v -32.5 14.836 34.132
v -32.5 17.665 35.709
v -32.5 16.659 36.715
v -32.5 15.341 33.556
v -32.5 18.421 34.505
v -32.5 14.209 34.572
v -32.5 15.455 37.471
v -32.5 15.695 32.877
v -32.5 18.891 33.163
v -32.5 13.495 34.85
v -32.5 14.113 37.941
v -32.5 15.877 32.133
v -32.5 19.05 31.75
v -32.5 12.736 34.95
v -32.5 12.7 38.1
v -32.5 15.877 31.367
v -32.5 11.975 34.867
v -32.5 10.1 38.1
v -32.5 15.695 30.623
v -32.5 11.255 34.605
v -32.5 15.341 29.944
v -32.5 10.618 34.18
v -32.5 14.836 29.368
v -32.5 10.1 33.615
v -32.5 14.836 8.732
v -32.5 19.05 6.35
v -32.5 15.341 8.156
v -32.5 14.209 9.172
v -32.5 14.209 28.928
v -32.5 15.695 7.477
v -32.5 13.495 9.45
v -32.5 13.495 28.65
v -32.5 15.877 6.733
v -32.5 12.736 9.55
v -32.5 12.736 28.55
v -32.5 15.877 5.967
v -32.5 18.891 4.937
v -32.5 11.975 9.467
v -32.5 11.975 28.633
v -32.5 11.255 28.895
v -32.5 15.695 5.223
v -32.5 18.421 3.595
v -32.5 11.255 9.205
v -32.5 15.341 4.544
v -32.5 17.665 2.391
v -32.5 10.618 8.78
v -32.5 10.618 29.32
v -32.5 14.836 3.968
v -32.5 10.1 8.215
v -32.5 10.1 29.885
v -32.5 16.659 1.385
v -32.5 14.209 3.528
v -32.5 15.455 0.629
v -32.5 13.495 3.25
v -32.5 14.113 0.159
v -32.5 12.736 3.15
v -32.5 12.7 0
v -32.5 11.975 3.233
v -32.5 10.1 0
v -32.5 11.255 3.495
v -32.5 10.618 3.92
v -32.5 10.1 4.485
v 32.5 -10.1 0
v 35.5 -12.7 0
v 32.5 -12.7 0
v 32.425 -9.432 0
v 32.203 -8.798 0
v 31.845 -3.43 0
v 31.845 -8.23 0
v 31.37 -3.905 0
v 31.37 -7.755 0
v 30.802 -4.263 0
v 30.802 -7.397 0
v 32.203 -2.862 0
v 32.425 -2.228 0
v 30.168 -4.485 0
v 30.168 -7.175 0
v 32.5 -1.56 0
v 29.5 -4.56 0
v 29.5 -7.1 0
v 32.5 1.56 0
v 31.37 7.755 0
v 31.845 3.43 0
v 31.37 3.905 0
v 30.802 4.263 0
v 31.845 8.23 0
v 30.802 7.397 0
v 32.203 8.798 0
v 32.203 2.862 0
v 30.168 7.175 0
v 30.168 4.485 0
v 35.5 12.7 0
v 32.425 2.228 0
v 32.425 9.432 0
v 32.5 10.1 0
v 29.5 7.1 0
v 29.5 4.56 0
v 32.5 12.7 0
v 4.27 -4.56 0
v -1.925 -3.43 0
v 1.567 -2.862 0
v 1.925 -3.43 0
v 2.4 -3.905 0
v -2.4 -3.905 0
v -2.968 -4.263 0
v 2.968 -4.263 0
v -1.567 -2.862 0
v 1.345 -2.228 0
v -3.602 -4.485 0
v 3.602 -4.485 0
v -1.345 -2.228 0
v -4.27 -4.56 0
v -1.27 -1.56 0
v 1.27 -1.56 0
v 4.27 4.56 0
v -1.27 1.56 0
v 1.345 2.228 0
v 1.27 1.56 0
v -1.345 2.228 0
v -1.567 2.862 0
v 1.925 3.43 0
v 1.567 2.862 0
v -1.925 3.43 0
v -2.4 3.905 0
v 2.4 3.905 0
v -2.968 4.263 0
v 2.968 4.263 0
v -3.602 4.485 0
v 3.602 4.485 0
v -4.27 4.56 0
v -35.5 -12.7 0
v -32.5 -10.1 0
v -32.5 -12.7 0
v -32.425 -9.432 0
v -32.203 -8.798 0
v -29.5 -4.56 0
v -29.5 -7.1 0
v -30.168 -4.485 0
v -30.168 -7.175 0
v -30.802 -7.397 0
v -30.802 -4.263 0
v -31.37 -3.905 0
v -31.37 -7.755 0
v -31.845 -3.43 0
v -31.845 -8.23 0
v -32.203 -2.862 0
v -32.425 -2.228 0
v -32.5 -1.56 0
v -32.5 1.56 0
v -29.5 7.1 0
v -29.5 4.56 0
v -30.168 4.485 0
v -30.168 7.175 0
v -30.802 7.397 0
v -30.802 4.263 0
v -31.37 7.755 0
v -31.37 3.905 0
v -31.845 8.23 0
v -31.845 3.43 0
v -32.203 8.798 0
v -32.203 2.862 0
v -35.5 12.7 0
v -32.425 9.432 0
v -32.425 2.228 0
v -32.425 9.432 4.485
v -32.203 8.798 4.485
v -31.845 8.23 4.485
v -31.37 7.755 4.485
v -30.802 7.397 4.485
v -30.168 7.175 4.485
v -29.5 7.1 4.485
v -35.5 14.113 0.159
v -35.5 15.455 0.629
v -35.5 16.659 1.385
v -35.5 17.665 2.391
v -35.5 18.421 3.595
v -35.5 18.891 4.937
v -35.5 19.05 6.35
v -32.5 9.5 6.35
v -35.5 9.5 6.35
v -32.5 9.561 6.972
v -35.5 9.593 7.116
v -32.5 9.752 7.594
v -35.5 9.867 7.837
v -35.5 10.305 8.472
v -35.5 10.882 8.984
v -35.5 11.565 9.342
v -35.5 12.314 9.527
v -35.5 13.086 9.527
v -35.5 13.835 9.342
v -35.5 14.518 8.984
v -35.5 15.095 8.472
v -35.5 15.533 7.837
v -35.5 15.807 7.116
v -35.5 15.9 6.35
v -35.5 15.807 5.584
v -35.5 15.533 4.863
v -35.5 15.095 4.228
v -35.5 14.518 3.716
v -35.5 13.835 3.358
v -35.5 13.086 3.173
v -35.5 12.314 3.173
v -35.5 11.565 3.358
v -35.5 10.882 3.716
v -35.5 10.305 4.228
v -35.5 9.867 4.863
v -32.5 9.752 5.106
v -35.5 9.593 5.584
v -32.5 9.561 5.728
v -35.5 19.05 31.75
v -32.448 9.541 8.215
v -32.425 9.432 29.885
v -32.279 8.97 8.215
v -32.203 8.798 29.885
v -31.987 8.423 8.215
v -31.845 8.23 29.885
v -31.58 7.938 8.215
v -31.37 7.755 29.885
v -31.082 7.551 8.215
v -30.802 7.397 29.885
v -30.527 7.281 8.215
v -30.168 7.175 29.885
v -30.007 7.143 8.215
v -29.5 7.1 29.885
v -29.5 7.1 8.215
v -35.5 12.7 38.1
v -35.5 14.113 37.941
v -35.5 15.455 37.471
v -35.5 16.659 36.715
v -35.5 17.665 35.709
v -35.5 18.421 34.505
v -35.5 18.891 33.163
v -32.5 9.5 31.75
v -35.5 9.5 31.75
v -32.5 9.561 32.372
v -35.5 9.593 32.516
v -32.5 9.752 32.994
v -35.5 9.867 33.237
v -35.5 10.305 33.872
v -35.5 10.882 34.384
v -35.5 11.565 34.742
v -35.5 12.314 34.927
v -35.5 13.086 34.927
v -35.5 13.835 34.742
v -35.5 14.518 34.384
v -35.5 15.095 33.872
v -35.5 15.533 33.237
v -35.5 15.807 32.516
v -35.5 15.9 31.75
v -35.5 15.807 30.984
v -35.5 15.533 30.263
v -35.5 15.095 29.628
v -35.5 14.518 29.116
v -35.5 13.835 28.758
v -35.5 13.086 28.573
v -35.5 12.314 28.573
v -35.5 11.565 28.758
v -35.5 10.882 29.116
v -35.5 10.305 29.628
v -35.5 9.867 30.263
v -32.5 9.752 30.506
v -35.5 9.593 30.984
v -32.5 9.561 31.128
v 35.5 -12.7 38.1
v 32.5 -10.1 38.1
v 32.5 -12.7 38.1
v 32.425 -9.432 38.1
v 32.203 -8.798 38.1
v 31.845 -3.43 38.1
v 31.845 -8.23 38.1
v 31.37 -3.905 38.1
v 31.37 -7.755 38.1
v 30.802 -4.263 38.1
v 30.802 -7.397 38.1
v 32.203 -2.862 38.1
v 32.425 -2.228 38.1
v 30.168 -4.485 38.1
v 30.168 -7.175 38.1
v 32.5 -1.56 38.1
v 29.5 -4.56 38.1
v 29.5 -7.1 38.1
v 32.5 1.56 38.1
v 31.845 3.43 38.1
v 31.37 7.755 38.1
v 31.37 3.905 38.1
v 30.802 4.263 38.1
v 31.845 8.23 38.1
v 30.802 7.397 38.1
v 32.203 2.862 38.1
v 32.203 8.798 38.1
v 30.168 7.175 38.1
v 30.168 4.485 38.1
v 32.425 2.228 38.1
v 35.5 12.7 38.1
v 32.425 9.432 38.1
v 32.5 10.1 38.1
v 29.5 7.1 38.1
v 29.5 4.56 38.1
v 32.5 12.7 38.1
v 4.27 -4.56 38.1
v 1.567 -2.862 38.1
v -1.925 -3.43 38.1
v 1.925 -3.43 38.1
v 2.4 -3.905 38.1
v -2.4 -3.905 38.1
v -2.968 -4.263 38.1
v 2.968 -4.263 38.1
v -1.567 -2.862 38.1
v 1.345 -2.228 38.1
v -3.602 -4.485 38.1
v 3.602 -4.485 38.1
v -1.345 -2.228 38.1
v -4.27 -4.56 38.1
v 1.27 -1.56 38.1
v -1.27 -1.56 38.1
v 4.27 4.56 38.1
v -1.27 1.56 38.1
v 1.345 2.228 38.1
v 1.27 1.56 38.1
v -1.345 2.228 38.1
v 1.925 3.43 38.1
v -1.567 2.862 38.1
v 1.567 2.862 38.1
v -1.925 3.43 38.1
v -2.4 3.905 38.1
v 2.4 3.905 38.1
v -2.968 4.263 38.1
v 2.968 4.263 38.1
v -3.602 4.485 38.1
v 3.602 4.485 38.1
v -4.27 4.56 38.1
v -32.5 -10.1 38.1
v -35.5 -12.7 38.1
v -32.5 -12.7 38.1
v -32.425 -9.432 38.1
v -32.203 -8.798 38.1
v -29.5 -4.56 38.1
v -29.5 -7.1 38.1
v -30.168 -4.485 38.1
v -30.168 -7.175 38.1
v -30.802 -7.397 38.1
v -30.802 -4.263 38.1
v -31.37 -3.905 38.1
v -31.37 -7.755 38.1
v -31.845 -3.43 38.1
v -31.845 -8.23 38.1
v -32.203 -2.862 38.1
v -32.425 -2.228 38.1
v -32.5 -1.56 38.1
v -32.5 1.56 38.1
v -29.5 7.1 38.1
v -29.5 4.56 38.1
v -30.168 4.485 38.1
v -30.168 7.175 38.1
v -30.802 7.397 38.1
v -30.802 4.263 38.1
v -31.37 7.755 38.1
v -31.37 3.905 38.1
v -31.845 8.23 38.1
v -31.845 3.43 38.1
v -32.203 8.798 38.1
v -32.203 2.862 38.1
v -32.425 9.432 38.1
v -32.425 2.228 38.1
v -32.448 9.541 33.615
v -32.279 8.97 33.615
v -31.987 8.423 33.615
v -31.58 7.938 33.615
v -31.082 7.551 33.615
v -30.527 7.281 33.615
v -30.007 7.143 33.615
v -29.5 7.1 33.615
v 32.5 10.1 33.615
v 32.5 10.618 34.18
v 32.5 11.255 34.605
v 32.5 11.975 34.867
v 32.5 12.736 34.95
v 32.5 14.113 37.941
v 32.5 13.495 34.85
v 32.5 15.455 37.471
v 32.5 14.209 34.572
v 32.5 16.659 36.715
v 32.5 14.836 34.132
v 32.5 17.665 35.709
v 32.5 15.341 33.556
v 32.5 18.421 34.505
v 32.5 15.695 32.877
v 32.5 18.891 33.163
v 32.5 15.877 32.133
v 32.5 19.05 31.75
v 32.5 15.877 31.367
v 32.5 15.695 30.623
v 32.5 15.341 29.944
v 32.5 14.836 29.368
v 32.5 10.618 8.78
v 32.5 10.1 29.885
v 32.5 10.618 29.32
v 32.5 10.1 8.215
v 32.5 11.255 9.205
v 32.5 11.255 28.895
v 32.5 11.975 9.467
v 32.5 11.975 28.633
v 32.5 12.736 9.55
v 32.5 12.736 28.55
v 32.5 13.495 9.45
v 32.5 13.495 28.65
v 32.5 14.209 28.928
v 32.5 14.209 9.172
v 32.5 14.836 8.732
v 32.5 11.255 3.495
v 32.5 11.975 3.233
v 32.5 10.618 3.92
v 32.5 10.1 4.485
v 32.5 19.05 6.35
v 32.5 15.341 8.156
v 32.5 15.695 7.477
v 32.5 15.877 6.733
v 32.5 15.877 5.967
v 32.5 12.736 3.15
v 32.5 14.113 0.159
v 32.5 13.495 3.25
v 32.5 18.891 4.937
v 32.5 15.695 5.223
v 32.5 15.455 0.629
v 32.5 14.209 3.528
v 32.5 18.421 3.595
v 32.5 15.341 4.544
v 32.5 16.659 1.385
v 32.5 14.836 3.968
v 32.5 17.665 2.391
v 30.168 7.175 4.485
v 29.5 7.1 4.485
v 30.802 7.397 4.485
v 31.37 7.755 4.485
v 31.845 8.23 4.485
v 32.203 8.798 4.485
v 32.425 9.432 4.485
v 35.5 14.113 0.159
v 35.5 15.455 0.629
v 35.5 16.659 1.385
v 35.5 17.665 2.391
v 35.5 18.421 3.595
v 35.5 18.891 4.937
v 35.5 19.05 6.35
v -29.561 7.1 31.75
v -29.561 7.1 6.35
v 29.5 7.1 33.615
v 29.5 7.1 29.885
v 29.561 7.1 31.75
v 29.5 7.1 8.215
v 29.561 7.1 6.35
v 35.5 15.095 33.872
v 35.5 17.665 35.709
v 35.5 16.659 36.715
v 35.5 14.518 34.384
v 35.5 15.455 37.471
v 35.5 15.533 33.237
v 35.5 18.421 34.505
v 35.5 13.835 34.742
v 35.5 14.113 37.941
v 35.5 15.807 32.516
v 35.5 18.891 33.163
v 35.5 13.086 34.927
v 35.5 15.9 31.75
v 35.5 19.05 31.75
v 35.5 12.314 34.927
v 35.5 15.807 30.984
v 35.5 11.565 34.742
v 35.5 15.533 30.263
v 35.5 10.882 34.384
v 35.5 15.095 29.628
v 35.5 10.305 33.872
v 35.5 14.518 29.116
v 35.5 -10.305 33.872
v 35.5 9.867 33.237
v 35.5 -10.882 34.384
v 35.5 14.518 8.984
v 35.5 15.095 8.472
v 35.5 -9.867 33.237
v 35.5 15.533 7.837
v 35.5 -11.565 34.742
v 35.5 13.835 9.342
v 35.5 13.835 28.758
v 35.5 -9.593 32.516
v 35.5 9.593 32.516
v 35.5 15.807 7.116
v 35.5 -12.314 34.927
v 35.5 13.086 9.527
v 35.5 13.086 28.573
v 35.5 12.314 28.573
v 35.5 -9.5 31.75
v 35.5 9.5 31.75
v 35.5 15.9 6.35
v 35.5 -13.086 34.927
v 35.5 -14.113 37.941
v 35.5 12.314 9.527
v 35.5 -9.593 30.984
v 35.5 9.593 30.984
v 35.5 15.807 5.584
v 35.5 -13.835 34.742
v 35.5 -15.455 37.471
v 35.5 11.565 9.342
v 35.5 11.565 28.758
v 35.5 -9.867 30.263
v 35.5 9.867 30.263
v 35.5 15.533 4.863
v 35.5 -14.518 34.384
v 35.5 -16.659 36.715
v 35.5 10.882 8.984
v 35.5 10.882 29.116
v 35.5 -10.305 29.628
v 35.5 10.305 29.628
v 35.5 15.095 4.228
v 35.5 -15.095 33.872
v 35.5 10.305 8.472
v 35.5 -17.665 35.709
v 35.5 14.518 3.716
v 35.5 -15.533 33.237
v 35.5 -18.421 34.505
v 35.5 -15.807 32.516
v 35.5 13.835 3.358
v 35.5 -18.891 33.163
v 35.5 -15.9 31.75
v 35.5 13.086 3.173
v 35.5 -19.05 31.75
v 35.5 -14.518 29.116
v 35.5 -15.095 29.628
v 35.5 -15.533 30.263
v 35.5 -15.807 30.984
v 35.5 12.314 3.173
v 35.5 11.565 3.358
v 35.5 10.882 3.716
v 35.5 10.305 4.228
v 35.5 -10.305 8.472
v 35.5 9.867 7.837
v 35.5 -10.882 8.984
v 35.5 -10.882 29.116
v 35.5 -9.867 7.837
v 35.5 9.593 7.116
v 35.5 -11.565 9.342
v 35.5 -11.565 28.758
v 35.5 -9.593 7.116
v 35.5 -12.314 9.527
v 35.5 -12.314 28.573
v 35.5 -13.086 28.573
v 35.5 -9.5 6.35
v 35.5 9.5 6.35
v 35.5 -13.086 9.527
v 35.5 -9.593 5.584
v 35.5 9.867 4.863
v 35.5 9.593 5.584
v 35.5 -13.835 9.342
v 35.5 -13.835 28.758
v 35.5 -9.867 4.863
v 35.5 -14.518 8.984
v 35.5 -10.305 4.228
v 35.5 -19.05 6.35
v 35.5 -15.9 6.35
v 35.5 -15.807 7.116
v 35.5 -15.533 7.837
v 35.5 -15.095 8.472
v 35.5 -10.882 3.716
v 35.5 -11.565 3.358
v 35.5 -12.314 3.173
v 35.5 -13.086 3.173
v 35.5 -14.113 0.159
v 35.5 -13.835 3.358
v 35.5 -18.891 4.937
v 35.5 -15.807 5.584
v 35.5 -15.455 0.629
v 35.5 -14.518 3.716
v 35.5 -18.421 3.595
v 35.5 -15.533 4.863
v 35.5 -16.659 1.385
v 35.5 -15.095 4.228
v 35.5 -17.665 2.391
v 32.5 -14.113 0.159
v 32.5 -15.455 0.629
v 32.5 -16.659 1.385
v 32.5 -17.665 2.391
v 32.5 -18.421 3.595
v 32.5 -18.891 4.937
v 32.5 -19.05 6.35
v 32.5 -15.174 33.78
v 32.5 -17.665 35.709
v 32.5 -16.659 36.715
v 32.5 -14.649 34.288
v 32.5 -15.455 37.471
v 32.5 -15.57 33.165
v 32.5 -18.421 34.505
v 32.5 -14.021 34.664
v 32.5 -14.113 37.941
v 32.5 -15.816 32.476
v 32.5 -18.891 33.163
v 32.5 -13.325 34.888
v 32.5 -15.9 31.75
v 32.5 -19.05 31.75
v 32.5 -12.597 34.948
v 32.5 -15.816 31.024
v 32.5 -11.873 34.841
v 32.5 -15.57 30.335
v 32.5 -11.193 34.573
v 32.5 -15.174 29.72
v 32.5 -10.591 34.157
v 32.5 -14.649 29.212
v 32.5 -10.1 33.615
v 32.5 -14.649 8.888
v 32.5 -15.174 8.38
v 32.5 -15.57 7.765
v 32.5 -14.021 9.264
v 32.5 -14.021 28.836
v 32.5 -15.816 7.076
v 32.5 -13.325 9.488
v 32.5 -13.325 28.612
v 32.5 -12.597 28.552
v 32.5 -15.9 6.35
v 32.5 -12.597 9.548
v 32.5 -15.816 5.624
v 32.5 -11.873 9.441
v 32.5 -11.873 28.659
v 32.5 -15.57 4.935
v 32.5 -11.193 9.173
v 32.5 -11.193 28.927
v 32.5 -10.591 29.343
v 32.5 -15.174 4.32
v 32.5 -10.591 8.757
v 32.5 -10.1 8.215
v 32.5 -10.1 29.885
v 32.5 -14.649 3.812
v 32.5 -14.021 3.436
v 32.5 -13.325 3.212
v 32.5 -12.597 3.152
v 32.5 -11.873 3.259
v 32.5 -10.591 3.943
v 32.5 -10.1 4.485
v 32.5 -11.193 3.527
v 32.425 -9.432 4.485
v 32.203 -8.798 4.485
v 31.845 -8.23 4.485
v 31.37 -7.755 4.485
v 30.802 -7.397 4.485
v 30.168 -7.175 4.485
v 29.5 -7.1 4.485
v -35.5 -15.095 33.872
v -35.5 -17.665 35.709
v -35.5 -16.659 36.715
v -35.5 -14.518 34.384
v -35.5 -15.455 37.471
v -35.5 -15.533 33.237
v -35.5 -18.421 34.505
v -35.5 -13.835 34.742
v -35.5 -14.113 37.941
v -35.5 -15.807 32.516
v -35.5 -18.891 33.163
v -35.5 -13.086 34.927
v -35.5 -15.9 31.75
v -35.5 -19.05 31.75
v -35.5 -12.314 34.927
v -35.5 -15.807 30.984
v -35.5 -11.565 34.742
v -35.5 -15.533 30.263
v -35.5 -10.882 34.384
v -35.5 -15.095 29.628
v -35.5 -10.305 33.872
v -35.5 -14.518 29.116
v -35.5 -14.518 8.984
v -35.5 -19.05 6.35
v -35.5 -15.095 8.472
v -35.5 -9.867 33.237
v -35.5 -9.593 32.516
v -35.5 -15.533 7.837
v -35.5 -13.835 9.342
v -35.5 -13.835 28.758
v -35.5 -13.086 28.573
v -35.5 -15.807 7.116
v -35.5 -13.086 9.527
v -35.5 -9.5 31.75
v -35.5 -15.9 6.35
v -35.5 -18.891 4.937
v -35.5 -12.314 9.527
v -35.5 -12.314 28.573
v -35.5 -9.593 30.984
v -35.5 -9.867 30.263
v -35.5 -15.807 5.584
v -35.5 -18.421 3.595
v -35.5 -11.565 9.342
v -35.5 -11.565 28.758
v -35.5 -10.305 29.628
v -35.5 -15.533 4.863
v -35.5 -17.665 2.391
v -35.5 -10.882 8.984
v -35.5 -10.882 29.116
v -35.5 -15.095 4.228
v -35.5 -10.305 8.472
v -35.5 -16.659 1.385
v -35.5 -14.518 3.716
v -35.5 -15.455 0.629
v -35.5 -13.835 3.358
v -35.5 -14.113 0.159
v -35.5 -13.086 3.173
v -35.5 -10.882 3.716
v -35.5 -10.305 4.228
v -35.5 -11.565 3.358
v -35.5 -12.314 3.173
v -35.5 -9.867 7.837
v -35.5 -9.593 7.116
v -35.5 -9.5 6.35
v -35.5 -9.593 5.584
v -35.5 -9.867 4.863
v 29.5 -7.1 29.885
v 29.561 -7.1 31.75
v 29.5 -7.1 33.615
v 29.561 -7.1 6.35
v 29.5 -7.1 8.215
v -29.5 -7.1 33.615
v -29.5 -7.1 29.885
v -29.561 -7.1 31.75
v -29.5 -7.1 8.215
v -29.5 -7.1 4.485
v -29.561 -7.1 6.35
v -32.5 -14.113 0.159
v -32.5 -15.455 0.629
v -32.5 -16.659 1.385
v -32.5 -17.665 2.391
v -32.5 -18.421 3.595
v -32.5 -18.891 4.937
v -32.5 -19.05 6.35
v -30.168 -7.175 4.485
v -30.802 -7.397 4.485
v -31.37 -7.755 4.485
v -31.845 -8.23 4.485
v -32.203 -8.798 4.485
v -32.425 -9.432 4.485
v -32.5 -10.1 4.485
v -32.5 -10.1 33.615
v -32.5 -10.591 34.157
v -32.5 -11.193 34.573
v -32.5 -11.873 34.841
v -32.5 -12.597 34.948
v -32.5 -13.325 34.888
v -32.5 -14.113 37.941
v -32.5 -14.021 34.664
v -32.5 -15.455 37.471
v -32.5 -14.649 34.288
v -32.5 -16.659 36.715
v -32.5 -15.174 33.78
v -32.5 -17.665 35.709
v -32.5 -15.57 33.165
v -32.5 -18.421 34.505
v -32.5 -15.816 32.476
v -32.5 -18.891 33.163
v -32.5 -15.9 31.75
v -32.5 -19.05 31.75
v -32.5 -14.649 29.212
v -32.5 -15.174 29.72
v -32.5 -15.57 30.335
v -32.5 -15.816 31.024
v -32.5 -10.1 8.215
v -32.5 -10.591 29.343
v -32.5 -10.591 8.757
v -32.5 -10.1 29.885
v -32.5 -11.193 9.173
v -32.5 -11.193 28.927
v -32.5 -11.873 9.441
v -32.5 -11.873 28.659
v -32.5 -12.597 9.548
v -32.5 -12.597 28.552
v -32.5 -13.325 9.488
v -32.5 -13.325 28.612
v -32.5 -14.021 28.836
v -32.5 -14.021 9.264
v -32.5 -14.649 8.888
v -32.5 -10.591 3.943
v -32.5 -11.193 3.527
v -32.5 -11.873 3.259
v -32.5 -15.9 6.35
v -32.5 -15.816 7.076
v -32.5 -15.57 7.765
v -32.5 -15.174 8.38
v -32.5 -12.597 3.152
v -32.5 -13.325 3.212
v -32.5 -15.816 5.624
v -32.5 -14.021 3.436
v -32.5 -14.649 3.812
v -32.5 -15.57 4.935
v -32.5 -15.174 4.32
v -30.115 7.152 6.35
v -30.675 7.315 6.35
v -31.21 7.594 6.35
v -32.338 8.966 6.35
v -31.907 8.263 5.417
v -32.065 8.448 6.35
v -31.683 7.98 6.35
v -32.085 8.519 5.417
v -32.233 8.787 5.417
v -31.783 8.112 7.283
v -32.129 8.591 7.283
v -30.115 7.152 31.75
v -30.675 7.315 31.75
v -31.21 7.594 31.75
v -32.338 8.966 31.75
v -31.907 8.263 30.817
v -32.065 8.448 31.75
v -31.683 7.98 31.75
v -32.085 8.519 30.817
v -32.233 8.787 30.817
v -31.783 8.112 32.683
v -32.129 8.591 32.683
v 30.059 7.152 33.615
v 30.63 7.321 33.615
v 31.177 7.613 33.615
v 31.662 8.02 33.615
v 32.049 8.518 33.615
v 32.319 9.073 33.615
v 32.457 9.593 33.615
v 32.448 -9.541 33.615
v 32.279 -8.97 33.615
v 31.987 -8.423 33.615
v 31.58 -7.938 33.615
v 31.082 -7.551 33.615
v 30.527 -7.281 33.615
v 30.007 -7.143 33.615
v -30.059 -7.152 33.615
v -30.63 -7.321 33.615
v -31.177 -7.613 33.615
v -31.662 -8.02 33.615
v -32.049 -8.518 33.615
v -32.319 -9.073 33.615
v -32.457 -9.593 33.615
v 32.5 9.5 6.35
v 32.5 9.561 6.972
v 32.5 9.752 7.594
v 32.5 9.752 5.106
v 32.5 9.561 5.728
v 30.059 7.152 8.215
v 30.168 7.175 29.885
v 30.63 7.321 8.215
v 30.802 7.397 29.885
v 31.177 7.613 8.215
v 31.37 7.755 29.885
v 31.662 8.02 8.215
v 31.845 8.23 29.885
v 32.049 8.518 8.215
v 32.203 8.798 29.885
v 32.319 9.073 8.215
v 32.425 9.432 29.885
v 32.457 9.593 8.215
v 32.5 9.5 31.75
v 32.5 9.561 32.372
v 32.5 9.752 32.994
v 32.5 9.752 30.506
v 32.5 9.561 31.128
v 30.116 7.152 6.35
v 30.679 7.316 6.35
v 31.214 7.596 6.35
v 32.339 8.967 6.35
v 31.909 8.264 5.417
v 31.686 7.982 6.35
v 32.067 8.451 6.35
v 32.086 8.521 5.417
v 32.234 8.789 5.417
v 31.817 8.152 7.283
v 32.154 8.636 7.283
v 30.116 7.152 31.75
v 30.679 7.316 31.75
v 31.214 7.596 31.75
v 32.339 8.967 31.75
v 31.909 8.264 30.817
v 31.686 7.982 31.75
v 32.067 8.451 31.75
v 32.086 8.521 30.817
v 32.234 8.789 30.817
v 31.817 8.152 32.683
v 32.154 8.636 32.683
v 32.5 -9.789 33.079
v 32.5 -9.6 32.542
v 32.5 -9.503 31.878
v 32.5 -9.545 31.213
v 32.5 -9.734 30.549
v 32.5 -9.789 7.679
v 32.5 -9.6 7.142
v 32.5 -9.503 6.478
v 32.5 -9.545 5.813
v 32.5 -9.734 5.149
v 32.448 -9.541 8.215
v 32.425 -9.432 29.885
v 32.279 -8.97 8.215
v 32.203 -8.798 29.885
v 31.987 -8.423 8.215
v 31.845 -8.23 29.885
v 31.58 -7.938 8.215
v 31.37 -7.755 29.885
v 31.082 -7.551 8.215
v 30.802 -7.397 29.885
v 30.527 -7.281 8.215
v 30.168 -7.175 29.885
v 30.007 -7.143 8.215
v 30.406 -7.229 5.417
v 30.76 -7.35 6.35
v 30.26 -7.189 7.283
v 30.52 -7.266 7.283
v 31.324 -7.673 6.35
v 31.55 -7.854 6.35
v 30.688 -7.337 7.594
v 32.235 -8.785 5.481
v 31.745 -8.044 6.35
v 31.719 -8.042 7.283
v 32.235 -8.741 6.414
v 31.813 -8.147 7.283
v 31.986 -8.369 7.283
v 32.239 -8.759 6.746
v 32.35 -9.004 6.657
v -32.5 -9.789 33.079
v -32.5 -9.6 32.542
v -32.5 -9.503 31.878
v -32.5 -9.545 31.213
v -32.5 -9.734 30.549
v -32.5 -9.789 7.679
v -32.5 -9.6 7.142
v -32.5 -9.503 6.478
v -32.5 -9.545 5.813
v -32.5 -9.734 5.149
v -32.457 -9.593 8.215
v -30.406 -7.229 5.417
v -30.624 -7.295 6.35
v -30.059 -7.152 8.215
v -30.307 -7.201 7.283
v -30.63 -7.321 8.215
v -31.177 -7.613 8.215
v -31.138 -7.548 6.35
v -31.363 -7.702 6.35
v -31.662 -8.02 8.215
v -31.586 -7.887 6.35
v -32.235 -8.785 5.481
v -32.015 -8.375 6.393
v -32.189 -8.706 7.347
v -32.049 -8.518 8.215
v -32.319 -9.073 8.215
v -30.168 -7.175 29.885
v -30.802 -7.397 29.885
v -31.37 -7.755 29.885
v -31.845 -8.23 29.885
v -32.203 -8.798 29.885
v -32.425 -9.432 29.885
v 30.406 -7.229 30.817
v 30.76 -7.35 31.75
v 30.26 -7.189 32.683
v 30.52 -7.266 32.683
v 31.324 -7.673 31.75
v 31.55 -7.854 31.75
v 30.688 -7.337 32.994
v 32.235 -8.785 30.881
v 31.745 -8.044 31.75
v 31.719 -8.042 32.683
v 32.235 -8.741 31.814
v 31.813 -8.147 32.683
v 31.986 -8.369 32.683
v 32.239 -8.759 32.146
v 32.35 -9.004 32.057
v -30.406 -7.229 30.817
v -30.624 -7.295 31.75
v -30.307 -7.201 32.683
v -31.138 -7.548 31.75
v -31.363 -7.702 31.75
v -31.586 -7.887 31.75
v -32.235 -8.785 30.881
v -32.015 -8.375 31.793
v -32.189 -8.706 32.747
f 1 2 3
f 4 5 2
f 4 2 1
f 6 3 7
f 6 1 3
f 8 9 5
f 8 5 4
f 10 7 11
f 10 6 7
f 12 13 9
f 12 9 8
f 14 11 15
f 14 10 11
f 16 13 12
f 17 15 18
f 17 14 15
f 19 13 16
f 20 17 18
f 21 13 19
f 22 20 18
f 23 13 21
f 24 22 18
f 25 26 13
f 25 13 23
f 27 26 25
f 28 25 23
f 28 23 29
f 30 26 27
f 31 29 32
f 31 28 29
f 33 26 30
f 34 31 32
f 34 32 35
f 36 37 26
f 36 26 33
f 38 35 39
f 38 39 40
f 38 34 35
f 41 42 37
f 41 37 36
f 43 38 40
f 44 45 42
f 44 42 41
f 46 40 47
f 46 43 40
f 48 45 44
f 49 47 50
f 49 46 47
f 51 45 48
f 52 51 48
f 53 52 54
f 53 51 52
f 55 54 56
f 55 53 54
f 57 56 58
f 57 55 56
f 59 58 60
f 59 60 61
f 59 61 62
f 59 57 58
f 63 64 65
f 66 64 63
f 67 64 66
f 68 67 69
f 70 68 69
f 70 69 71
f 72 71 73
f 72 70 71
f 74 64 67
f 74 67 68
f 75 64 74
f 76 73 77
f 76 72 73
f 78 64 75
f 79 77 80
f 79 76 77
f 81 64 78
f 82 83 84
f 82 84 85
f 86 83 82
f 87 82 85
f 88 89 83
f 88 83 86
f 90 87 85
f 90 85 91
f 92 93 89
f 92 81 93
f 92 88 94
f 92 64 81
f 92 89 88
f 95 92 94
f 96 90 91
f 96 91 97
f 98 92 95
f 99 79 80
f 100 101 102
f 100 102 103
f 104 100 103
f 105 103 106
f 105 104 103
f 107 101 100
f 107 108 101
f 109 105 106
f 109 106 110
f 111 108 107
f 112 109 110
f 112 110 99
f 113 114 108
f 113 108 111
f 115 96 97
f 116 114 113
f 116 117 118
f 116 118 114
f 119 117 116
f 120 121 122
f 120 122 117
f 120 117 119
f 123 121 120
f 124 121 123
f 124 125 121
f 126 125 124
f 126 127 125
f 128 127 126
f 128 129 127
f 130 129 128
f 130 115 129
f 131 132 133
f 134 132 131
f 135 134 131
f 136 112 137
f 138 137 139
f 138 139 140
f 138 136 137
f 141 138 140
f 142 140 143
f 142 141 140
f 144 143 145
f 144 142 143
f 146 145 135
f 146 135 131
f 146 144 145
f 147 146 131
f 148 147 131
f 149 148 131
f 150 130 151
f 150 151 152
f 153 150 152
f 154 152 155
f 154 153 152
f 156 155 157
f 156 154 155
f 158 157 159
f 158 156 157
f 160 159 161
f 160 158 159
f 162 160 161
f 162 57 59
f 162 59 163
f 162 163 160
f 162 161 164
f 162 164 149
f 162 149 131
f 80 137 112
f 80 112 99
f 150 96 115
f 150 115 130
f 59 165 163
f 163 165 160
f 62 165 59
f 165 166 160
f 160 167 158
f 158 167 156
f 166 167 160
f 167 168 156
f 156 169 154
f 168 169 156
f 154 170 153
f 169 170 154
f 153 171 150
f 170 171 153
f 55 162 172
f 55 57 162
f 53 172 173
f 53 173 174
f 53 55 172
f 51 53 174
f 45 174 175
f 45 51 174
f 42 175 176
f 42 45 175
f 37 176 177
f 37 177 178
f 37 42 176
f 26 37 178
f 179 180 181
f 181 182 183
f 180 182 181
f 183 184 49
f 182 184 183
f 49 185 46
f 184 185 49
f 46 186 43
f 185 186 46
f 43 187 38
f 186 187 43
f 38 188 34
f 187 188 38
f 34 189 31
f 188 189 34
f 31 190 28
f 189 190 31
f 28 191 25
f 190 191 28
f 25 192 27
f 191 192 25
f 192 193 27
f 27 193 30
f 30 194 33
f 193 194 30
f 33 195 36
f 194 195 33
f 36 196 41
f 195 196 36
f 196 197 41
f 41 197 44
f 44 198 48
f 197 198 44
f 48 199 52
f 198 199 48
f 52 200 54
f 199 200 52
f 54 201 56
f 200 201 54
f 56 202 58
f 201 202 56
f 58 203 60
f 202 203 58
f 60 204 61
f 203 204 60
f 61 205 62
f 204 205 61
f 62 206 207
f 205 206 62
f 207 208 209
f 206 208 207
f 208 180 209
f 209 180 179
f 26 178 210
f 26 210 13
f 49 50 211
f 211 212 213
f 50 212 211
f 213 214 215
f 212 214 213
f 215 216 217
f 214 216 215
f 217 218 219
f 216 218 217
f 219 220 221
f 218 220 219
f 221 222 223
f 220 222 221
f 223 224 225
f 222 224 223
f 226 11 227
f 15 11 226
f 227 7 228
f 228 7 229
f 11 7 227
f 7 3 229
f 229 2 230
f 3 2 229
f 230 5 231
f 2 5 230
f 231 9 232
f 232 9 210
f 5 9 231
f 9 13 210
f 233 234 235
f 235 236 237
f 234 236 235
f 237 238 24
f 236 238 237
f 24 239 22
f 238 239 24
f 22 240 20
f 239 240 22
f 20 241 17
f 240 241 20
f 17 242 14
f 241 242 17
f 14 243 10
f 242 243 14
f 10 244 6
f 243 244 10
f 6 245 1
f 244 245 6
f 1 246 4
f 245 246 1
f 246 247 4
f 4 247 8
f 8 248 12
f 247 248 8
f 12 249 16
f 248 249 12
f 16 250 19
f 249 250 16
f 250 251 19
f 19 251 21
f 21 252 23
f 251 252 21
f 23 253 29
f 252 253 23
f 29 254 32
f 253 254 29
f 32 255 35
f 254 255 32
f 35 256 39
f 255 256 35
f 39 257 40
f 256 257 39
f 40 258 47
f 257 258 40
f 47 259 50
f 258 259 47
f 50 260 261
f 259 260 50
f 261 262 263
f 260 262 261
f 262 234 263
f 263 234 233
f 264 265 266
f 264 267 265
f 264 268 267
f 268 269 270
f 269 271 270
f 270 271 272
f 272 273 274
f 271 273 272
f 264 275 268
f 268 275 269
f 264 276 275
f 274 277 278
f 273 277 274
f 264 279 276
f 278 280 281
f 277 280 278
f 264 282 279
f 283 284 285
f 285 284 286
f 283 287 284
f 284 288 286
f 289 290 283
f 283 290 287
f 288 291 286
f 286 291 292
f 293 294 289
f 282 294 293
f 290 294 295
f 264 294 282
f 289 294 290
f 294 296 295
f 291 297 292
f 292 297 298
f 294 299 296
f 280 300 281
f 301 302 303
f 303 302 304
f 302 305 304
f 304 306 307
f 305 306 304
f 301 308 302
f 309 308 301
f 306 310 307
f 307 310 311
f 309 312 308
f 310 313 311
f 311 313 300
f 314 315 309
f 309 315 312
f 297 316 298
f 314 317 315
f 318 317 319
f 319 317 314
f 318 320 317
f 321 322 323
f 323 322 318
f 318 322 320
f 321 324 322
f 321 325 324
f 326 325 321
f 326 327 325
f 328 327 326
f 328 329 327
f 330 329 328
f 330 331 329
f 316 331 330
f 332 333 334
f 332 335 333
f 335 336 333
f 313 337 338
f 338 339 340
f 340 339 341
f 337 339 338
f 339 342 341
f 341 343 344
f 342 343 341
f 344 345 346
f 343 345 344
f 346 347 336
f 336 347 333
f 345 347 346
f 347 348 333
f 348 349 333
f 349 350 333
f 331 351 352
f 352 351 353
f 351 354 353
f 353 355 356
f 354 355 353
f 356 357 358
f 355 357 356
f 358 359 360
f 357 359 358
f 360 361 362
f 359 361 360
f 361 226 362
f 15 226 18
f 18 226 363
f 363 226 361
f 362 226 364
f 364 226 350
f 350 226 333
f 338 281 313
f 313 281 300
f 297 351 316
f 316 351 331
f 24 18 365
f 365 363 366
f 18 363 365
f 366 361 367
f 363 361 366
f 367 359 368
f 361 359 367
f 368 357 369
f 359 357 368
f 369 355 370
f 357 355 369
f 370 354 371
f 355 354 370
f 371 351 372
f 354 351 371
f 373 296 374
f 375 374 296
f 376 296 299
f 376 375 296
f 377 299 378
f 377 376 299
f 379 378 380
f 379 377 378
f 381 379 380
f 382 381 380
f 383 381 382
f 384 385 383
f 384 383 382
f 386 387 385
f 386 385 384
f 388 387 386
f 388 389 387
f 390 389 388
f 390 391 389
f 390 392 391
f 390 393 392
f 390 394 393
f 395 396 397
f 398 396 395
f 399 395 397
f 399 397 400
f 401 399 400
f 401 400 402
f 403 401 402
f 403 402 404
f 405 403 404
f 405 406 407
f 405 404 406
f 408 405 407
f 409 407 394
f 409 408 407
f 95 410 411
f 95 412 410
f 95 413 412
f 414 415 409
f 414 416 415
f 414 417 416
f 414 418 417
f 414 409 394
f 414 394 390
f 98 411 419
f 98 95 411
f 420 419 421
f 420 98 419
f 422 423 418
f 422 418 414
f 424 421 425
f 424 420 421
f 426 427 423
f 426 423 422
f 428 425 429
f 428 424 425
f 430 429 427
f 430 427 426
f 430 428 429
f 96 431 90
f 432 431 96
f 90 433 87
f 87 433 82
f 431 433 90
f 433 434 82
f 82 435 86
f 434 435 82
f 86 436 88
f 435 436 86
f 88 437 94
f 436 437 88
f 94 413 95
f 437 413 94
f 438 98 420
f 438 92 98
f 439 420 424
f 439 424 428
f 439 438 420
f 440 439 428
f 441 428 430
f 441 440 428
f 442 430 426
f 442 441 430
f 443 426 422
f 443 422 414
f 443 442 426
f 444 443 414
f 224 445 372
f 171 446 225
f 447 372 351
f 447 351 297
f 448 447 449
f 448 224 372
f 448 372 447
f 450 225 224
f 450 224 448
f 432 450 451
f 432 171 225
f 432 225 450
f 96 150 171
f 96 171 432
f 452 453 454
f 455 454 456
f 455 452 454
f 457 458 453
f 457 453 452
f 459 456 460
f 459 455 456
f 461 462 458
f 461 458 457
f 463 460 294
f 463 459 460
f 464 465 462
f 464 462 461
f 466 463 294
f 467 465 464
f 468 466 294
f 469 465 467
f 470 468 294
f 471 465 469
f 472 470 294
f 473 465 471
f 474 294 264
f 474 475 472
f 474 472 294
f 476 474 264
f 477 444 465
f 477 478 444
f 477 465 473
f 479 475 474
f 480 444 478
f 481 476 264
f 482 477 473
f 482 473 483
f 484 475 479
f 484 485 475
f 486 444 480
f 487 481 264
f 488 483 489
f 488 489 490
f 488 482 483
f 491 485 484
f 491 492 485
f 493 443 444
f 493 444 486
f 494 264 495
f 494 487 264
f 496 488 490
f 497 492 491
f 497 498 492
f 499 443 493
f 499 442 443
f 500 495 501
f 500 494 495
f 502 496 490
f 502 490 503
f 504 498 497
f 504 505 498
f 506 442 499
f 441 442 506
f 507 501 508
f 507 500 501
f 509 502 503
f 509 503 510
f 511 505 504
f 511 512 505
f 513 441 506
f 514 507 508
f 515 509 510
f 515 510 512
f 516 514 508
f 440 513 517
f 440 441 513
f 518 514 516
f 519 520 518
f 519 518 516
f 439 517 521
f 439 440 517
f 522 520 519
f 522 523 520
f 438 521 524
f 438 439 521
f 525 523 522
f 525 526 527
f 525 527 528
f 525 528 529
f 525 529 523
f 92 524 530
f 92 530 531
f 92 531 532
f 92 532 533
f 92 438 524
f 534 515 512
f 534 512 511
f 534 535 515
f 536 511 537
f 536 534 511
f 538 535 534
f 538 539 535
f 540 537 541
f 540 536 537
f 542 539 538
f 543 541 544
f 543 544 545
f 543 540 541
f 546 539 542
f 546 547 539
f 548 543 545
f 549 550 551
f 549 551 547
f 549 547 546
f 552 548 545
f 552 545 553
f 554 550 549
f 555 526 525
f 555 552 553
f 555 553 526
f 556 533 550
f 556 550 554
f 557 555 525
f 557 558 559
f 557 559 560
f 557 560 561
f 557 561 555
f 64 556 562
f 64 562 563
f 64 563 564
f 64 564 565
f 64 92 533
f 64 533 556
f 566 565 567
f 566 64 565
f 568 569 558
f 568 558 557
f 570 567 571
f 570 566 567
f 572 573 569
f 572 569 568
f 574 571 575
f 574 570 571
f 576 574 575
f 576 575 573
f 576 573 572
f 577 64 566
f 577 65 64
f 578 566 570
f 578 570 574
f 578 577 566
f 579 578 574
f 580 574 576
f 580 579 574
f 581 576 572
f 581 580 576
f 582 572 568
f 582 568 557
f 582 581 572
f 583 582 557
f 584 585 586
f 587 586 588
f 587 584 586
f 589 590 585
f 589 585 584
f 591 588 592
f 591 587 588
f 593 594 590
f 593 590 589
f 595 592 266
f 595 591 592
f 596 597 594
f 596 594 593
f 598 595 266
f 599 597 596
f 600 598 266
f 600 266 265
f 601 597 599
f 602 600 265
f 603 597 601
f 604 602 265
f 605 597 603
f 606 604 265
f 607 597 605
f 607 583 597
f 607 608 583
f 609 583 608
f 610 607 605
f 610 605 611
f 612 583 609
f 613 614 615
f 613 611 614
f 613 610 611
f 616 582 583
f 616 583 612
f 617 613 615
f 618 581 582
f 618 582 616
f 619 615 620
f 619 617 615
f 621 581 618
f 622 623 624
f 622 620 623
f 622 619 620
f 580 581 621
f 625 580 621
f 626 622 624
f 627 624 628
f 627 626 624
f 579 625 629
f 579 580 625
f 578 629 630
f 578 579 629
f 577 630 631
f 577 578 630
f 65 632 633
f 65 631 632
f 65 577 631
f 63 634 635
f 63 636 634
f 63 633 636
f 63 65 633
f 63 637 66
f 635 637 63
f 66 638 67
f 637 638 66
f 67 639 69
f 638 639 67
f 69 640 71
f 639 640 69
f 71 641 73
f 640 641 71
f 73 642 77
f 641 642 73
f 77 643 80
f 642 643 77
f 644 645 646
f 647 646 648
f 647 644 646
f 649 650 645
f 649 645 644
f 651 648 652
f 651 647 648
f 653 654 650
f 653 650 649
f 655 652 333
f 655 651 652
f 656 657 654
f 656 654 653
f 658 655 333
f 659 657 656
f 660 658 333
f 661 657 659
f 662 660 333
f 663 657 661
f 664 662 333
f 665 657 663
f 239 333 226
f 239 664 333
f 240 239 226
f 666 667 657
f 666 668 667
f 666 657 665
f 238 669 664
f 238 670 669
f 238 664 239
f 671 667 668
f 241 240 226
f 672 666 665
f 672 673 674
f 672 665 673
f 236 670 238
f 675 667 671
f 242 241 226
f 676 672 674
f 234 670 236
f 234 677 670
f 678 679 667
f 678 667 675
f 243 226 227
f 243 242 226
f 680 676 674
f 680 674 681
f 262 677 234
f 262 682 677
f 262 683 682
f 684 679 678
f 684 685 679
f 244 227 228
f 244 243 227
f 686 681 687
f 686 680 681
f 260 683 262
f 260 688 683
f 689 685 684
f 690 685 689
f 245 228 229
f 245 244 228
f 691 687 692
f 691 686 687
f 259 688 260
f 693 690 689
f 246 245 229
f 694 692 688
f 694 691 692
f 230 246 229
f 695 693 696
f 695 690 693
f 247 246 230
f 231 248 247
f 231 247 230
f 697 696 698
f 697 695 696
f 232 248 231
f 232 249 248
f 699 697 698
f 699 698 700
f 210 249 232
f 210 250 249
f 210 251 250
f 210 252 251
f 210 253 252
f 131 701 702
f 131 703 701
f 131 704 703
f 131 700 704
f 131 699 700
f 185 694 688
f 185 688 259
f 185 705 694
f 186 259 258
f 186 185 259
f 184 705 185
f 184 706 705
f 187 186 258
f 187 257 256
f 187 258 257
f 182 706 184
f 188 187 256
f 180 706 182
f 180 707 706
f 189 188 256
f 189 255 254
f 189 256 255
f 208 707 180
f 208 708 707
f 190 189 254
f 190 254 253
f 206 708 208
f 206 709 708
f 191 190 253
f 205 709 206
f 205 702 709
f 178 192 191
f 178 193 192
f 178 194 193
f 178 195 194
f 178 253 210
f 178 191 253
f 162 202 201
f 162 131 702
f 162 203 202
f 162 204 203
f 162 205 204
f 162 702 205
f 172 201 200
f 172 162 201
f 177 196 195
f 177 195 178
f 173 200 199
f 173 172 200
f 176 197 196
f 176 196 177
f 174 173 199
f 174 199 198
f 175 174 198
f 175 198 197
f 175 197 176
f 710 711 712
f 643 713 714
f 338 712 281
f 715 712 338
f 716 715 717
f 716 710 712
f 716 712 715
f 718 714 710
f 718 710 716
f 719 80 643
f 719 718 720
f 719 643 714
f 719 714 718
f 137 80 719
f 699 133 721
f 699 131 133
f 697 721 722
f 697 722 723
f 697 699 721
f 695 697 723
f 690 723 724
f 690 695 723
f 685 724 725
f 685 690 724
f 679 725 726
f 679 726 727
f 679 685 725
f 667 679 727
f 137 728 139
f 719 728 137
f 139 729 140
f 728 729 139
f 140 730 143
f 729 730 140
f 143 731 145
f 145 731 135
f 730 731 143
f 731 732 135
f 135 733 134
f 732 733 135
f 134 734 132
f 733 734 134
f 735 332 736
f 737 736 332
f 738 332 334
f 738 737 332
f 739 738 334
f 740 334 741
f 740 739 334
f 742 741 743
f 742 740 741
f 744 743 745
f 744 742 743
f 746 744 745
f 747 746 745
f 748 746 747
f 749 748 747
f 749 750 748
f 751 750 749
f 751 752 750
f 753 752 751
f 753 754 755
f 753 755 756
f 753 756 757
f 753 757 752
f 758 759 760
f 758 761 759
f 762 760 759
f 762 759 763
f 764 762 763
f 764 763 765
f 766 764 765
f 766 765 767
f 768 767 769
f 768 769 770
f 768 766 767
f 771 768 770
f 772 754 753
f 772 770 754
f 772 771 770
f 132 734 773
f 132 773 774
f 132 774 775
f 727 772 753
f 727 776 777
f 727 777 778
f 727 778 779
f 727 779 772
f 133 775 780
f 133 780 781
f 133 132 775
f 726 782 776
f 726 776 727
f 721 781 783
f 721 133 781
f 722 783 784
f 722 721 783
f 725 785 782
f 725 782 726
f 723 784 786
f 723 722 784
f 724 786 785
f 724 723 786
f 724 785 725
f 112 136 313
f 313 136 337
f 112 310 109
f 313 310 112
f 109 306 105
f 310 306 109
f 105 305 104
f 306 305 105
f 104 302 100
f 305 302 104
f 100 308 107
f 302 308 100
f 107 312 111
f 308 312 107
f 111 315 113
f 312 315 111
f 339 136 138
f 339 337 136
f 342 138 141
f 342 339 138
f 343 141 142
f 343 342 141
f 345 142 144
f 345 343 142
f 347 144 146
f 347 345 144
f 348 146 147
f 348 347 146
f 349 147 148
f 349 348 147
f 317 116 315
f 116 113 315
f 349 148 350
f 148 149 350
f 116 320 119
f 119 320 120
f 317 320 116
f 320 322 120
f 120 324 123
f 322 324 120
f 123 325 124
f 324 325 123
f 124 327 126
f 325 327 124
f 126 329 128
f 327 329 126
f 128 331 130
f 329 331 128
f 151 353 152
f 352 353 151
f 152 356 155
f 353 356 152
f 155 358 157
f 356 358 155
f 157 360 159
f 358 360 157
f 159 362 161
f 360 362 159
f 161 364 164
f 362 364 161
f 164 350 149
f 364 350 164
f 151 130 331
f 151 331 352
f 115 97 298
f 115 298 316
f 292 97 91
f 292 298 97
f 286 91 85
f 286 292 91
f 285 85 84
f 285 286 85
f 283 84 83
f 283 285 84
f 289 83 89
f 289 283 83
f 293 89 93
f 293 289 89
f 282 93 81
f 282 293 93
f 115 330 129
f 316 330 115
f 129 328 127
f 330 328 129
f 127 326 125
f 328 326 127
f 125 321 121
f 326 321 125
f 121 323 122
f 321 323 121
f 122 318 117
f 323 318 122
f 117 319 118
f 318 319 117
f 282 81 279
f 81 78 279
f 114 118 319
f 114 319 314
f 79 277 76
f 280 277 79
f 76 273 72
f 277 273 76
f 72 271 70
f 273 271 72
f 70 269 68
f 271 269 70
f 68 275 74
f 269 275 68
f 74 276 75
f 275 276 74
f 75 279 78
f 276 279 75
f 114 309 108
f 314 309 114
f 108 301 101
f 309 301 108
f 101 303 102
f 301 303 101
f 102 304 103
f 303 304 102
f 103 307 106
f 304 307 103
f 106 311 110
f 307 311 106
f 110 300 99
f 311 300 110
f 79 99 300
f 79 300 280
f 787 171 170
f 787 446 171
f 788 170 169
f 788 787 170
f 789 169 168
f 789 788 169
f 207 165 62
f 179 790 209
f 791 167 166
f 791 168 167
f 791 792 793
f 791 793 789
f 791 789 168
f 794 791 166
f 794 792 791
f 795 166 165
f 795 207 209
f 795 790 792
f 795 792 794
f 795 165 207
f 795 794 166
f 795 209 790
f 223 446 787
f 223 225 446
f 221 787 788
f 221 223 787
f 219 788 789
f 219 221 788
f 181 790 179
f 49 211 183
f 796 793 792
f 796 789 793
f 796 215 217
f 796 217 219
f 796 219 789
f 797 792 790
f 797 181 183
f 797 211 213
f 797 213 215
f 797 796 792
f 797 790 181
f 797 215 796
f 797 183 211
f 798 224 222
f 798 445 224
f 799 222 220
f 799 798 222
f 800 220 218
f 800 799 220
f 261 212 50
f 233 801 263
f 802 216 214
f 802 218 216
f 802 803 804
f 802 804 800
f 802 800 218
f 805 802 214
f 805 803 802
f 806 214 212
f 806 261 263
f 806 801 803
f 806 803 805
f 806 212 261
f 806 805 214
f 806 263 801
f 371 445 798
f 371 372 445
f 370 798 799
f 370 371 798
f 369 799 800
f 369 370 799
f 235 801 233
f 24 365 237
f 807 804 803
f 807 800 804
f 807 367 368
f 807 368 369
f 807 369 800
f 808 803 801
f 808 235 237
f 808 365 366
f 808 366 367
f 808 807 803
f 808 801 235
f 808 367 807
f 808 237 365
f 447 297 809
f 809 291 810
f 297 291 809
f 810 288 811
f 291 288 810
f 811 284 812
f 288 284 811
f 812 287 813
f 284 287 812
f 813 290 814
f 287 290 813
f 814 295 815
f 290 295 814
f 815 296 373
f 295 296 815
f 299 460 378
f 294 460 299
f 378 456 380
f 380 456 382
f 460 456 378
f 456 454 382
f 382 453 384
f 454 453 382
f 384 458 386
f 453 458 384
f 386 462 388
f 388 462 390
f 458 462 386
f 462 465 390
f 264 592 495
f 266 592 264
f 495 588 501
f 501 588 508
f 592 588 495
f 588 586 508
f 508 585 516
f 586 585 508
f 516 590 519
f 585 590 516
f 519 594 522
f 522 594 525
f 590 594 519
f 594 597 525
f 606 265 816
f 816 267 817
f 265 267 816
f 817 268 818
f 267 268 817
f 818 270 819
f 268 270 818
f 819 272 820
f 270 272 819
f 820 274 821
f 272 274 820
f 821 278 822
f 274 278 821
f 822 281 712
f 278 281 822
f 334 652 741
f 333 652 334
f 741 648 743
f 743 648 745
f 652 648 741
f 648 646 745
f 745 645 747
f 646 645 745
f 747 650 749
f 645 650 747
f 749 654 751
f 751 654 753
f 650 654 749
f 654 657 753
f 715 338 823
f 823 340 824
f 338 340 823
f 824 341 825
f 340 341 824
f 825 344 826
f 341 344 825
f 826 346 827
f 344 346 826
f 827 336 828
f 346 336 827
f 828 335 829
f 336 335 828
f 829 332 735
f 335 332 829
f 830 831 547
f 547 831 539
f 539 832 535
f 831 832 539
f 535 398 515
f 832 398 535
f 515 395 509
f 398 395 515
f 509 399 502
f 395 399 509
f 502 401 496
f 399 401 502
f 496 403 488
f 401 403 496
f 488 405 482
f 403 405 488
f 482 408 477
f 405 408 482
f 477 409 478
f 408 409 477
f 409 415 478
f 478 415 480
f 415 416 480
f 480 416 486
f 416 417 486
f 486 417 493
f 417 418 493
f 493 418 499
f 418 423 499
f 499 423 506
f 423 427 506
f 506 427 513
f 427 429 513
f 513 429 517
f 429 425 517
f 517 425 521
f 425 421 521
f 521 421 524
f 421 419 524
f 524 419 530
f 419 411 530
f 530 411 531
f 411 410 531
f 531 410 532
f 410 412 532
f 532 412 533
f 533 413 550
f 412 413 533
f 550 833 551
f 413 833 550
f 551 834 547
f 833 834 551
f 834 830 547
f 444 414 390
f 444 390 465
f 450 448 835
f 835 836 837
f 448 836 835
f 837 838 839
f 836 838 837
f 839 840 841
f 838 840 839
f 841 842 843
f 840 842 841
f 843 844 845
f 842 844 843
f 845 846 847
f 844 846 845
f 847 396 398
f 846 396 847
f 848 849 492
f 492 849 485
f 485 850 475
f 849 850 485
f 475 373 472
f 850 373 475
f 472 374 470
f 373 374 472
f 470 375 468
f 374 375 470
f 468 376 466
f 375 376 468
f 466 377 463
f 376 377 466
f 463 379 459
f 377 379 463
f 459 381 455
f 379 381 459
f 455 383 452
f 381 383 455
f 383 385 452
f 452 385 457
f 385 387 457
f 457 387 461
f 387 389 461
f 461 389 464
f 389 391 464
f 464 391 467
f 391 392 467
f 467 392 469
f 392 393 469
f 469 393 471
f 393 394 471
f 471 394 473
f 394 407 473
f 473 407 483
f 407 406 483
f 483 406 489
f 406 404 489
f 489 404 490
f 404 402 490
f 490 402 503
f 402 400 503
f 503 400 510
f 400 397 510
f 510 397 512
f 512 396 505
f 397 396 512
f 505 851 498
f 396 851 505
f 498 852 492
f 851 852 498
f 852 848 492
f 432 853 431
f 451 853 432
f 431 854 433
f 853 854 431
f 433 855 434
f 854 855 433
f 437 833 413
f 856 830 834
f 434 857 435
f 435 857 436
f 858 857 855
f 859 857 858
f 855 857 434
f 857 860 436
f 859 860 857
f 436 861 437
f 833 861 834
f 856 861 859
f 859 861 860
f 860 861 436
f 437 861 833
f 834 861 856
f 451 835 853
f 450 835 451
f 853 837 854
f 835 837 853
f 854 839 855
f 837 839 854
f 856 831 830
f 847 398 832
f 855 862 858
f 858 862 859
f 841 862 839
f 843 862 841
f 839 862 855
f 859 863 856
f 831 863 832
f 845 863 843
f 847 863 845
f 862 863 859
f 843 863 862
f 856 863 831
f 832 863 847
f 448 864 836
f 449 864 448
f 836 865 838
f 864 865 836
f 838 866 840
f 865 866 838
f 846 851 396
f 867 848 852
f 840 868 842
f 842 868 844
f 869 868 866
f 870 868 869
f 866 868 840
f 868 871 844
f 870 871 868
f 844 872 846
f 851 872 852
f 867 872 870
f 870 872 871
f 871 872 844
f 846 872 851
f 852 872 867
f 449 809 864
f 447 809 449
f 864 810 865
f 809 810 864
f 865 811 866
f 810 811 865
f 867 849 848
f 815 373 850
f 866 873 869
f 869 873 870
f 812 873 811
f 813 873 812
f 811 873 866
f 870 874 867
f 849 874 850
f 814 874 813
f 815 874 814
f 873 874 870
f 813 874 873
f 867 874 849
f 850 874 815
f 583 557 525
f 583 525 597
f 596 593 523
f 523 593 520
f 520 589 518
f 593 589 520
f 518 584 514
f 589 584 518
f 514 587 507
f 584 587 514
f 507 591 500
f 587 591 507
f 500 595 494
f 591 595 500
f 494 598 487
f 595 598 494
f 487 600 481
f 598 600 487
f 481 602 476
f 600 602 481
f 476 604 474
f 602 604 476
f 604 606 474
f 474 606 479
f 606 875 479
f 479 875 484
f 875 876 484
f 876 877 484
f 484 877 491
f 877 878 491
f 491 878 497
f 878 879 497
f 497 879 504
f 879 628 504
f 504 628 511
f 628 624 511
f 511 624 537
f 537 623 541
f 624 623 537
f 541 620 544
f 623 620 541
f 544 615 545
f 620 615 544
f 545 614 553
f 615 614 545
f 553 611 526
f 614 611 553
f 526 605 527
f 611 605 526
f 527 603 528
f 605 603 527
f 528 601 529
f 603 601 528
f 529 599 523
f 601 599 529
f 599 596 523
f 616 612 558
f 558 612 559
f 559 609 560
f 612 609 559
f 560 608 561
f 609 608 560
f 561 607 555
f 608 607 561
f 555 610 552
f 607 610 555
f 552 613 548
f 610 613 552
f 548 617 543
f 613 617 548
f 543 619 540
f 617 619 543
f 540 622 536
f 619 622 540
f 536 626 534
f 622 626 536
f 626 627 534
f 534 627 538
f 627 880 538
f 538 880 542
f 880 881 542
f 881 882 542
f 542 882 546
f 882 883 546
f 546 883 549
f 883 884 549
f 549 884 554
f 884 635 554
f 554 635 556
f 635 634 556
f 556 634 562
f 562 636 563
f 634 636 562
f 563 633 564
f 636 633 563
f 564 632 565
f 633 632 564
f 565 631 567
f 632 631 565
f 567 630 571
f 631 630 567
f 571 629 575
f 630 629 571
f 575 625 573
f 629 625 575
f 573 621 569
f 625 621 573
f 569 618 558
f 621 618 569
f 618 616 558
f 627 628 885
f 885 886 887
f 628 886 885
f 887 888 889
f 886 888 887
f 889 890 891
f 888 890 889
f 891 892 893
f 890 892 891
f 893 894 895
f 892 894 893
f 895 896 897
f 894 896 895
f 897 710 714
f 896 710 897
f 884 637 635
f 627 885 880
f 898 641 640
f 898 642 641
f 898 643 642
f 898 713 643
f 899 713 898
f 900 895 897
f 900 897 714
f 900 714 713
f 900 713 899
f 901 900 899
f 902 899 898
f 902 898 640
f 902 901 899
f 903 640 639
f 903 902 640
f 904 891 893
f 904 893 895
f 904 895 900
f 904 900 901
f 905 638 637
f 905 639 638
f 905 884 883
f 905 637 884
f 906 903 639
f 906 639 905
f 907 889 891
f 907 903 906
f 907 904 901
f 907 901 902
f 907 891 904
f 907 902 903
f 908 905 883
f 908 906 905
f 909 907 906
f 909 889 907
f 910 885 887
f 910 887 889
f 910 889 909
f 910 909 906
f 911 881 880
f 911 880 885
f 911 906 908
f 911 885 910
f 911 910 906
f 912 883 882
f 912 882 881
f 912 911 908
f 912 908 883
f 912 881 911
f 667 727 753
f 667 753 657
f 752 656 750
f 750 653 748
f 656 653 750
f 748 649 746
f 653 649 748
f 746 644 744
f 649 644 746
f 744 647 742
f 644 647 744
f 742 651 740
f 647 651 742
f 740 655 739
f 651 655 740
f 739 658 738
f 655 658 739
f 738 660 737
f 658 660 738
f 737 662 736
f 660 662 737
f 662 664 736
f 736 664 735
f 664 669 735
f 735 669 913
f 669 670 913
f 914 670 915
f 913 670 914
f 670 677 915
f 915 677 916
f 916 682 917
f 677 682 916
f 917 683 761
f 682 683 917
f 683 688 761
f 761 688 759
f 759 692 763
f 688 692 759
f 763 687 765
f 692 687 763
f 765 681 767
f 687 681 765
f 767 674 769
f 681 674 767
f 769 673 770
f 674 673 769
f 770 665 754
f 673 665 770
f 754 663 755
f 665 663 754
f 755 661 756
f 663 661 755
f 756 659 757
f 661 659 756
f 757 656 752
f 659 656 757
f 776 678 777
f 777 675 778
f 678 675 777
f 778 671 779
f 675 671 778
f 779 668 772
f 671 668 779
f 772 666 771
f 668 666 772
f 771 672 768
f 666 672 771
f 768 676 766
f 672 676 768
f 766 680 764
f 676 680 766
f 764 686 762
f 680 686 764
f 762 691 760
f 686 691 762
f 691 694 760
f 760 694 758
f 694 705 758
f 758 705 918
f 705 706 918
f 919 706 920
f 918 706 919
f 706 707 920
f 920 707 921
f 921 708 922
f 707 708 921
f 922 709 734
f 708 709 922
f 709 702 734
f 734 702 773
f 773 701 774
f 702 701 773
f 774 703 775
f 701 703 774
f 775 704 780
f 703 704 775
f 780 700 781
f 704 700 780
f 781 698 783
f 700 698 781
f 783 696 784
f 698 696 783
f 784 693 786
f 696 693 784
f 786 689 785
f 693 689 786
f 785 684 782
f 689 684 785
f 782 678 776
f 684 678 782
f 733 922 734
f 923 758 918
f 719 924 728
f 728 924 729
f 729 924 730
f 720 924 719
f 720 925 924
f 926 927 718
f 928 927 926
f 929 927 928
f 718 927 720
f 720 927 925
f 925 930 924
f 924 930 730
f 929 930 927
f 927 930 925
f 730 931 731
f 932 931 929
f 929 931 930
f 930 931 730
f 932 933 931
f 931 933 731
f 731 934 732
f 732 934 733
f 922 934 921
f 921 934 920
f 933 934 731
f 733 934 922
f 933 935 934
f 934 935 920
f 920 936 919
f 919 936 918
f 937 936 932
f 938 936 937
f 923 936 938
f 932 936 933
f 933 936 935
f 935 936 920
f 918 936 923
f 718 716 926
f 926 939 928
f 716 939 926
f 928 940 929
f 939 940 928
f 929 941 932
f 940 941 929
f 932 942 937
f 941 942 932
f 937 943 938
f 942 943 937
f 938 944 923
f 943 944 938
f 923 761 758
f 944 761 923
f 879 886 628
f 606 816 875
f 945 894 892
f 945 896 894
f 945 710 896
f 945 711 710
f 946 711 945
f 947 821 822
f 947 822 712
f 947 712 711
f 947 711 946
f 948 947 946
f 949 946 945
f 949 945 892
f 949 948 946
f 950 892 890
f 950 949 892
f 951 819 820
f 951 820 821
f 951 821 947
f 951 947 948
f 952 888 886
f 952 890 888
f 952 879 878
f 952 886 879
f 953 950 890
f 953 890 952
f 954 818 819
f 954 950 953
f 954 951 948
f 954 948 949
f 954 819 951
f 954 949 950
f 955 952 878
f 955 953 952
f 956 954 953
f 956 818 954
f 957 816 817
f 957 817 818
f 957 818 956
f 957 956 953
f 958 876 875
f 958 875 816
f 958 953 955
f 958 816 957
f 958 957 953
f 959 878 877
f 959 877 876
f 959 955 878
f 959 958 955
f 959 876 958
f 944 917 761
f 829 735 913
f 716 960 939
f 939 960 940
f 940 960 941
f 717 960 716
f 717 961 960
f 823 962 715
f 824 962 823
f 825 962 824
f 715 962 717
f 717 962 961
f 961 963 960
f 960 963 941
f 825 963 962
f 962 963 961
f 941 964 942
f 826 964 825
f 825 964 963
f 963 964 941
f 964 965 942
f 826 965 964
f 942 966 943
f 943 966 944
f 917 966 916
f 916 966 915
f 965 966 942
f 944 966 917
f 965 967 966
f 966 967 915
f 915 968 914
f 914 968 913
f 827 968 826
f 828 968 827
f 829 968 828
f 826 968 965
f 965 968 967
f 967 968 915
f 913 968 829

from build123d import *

# Parameters (mm, degrees)
SKETCH_W     = 31.23
SKETCH_H     = 9.12
PAD_DEPTH    = 38.1
SKETCH001_R  = 3.2
POCKET_DEPTH = 71
FILLET_R     = 6.35
FILLET001_R  = 3


with BuildPart() as part:
    # Sketch → Pad (new body)
    with BuildSketch(Plane.XY):
        Polygon((-32.5, 7.1), (32.5, 7.1), (32.5, 19.05), (35.5, 19.05), (35.5, -19.05), (32.5, -19.05), (32.5, -7.1), (-32.5, -7.1), (-32.5, -19.05), (-35.5, -19.05), (-35.5, 19.05), (-32.5, 19.05), align=None)
        with Locations((16.885, 0)):
            Rectangle(SKETCH_W, SKETCH_H, mode=Mode.SUBTRACT)
        with Locations((-16.885, 0)):
            Rectangle(SKETCH_W, SKETCH_H, mode=Mode.SUBTRACT)
    extrude(amount=PAD_DEPTH)

    # Sketch001 (on Face10 of Pad) → Pocket (cut)
    with BuildSketch(Plane(origin=(-35.5, 0, 0), x_dir=(0, -1, 0), z_dir=(-1, 0, 0))):
        with Locations((12.7, 31.75)):
            Circle(SKETCH001_R)
        with Locations((12.7, 6.35)):
            Circle(SKETCH001_R)
        with Locations((-12.7, 6.35)):
            Circle(SKETCH001_R)
        with Locations((-12.7, 31.75)):
            Circle(SKETCH001_R)
    extrude(amount=-POCKET_DEPTH, mode=Mode.SUBTRACT)

    # Fillet
    fillet_edges = [part.edges().sort_by_distance(p)[0] for p in [
        (-34, 19.05, 0),
        (-34, -19.05, 0),
        (34, -19.05, 38.1),
        (34, 19.05, 0),
        (34, -19.05, 0),
        (34, 19.05, 38.1),
        (-34, 19.05, 38.1),
        (-34, -19.05, 38.1),
    ]]
    fillet(fillet_edges, radius=FILLET_R)

    # Fillet001
    fillet001_edges = [part.edges().sort_by_distance(p)[0] for p in [
        (-1.27, -4.56, 19.05),
        (-1.27, 4.56, 19.05),
        (32.5, 4.56, 19.05),
        (32.5, -4.56, 19.05),
        (1.27, -4.56, 19.05),
        (1.27, 4.56, 19.05),
        (-32.5, -4.56, 19.05),
        (-32.5, 4.56, 19.05),
        (-32.5, -7.1, 19.05),
        (-32.5, 7.1, 19.05),
        (32.5, 7.1, 19.05),
        (32.5, -7.1, 19.05),
    ]]
    fillet(fillet001_edges, radius=FILLET001_R)


solid = part.part
